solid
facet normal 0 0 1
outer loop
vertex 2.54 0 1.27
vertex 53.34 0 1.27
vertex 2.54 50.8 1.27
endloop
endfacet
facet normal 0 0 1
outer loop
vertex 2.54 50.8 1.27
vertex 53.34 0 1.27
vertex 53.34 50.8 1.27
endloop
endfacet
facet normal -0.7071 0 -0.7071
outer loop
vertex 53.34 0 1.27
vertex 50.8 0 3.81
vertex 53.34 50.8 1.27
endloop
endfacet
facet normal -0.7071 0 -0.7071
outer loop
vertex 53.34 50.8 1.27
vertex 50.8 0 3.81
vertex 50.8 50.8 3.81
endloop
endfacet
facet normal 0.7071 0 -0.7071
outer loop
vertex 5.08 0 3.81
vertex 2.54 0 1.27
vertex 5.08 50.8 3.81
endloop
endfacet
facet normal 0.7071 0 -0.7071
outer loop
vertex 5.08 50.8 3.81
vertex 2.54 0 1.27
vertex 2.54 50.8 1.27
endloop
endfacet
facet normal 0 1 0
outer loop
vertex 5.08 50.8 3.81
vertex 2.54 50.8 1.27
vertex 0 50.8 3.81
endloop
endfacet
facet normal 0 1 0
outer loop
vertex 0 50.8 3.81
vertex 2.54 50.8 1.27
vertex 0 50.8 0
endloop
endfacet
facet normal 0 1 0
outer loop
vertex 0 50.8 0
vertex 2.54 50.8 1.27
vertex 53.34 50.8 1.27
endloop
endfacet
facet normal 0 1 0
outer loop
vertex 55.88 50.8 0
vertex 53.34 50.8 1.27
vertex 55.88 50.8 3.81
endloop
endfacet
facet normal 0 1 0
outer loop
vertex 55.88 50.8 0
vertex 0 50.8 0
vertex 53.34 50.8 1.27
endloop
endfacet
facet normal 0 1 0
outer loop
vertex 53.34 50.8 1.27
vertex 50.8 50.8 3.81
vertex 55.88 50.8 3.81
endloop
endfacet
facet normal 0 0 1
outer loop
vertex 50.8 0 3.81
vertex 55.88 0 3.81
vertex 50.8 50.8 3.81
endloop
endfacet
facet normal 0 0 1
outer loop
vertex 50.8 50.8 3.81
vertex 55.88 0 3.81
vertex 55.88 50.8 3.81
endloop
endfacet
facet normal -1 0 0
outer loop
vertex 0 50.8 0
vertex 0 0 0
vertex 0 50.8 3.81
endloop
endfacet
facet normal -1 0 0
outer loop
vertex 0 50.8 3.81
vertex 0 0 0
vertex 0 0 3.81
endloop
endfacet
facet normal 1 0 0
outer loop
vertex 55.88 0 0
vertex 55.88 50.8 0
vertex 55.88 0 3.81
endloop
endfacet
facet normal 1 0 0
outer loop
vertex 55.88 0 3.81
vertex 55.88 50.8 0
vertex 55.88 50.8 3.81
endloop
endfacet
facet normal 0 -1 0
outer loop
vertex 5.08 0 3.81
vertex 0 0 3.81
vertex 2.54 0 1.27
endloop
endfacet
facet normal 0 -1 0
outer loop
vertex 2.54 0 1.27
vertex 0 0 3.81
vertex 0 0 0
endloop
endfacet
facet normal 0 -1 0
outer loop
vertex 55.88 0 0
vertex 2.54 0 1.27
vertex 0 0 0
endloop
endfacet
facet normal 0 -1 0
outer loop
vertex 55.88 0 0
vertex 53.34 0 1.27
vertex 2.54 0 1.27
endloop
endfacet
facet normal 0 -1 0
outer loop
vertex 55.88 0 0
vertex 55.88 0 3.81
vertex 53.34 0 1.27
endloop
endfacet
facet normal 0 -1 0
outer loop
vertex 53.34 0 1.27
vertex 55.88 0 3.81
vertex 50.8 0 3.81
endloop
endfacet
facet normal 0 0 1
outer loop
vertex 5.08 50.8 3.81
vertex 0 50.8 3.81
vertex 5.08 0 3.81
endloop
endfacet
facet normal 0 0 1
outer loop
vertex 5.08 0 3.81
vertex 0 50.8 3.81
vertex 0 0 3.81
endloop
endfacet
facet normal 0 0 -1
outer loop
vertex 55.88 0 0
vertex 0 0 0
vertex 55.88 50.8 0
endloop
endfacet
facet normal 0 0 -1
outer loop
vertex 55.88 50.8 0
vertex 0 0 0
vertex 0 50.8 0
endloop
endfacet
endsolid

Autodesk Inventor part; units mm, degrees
ref_plane "YZ Plane" through (0, 0, 0) normal (1, 0, 0) x (0, 1, 0)
ref_plane "XZ Plane" through (0, 0, 0) normal (0, 1, 0) x (-1, 0, 0)
ref_plane "XY Plane" through (0, 0, 0) normal (0, 0, 1) x (1, 0, 0)
sketch "Sketch1" plane through (0, 0, 0) normal (0, 0, 1) x (1, 0, 0)
  line L0 (0, 0) -> (55.88, 0)
  line L1 (55.88, 0) -> (55.88, 50.8)
  line L2 (55.88, 50.8) -> (0, 50.8)
  line L3 (0, 50.8) -> (0, 0)
  dimension "d0" = 55.88
  dimension "d1" = 50.8
extrude "Extrusion1" add sketch "Sketch1" along normal blind 3.81
sketch "Sketch2" plane through (0, 0, 0) normal (0, -1, 0) x (1, 0, 0)
  line L0 (0, 3.81) -> (55.88, 3.81) projected
  line L1 (5.08, 3.81) -> (2.54, 1.27)
  line L2 (2.54, 1.27) -> (53.34, 1.27)
  line L3 (53.34, 1.27) -> (50.8, 3.81)
  line L4 (5.08, 3.81) -> (50.8, 3.81)
  line L5 (0, 0) -> (0, 3.81) projected
  line L6 (0, 0) -> (55.88, 0) projected
  line L7 (55.88, 0) -> (55.88, 3.81) projected
  dimension "d4" = 45
  dimension "d5" = 45
  dimension "d6" = 45.72
  dimension "d7" = 2.54
  dimension "d8" = 1.27
  dimension "d12" = 2.54
  dimension "d13" = 2.54
extrude "Extrusion2" cut sketch "Sketch2" against normal blind 50.8 contours L0 L3 L2 L1
properties part number "nano_enclosure_modular_sidelock"
